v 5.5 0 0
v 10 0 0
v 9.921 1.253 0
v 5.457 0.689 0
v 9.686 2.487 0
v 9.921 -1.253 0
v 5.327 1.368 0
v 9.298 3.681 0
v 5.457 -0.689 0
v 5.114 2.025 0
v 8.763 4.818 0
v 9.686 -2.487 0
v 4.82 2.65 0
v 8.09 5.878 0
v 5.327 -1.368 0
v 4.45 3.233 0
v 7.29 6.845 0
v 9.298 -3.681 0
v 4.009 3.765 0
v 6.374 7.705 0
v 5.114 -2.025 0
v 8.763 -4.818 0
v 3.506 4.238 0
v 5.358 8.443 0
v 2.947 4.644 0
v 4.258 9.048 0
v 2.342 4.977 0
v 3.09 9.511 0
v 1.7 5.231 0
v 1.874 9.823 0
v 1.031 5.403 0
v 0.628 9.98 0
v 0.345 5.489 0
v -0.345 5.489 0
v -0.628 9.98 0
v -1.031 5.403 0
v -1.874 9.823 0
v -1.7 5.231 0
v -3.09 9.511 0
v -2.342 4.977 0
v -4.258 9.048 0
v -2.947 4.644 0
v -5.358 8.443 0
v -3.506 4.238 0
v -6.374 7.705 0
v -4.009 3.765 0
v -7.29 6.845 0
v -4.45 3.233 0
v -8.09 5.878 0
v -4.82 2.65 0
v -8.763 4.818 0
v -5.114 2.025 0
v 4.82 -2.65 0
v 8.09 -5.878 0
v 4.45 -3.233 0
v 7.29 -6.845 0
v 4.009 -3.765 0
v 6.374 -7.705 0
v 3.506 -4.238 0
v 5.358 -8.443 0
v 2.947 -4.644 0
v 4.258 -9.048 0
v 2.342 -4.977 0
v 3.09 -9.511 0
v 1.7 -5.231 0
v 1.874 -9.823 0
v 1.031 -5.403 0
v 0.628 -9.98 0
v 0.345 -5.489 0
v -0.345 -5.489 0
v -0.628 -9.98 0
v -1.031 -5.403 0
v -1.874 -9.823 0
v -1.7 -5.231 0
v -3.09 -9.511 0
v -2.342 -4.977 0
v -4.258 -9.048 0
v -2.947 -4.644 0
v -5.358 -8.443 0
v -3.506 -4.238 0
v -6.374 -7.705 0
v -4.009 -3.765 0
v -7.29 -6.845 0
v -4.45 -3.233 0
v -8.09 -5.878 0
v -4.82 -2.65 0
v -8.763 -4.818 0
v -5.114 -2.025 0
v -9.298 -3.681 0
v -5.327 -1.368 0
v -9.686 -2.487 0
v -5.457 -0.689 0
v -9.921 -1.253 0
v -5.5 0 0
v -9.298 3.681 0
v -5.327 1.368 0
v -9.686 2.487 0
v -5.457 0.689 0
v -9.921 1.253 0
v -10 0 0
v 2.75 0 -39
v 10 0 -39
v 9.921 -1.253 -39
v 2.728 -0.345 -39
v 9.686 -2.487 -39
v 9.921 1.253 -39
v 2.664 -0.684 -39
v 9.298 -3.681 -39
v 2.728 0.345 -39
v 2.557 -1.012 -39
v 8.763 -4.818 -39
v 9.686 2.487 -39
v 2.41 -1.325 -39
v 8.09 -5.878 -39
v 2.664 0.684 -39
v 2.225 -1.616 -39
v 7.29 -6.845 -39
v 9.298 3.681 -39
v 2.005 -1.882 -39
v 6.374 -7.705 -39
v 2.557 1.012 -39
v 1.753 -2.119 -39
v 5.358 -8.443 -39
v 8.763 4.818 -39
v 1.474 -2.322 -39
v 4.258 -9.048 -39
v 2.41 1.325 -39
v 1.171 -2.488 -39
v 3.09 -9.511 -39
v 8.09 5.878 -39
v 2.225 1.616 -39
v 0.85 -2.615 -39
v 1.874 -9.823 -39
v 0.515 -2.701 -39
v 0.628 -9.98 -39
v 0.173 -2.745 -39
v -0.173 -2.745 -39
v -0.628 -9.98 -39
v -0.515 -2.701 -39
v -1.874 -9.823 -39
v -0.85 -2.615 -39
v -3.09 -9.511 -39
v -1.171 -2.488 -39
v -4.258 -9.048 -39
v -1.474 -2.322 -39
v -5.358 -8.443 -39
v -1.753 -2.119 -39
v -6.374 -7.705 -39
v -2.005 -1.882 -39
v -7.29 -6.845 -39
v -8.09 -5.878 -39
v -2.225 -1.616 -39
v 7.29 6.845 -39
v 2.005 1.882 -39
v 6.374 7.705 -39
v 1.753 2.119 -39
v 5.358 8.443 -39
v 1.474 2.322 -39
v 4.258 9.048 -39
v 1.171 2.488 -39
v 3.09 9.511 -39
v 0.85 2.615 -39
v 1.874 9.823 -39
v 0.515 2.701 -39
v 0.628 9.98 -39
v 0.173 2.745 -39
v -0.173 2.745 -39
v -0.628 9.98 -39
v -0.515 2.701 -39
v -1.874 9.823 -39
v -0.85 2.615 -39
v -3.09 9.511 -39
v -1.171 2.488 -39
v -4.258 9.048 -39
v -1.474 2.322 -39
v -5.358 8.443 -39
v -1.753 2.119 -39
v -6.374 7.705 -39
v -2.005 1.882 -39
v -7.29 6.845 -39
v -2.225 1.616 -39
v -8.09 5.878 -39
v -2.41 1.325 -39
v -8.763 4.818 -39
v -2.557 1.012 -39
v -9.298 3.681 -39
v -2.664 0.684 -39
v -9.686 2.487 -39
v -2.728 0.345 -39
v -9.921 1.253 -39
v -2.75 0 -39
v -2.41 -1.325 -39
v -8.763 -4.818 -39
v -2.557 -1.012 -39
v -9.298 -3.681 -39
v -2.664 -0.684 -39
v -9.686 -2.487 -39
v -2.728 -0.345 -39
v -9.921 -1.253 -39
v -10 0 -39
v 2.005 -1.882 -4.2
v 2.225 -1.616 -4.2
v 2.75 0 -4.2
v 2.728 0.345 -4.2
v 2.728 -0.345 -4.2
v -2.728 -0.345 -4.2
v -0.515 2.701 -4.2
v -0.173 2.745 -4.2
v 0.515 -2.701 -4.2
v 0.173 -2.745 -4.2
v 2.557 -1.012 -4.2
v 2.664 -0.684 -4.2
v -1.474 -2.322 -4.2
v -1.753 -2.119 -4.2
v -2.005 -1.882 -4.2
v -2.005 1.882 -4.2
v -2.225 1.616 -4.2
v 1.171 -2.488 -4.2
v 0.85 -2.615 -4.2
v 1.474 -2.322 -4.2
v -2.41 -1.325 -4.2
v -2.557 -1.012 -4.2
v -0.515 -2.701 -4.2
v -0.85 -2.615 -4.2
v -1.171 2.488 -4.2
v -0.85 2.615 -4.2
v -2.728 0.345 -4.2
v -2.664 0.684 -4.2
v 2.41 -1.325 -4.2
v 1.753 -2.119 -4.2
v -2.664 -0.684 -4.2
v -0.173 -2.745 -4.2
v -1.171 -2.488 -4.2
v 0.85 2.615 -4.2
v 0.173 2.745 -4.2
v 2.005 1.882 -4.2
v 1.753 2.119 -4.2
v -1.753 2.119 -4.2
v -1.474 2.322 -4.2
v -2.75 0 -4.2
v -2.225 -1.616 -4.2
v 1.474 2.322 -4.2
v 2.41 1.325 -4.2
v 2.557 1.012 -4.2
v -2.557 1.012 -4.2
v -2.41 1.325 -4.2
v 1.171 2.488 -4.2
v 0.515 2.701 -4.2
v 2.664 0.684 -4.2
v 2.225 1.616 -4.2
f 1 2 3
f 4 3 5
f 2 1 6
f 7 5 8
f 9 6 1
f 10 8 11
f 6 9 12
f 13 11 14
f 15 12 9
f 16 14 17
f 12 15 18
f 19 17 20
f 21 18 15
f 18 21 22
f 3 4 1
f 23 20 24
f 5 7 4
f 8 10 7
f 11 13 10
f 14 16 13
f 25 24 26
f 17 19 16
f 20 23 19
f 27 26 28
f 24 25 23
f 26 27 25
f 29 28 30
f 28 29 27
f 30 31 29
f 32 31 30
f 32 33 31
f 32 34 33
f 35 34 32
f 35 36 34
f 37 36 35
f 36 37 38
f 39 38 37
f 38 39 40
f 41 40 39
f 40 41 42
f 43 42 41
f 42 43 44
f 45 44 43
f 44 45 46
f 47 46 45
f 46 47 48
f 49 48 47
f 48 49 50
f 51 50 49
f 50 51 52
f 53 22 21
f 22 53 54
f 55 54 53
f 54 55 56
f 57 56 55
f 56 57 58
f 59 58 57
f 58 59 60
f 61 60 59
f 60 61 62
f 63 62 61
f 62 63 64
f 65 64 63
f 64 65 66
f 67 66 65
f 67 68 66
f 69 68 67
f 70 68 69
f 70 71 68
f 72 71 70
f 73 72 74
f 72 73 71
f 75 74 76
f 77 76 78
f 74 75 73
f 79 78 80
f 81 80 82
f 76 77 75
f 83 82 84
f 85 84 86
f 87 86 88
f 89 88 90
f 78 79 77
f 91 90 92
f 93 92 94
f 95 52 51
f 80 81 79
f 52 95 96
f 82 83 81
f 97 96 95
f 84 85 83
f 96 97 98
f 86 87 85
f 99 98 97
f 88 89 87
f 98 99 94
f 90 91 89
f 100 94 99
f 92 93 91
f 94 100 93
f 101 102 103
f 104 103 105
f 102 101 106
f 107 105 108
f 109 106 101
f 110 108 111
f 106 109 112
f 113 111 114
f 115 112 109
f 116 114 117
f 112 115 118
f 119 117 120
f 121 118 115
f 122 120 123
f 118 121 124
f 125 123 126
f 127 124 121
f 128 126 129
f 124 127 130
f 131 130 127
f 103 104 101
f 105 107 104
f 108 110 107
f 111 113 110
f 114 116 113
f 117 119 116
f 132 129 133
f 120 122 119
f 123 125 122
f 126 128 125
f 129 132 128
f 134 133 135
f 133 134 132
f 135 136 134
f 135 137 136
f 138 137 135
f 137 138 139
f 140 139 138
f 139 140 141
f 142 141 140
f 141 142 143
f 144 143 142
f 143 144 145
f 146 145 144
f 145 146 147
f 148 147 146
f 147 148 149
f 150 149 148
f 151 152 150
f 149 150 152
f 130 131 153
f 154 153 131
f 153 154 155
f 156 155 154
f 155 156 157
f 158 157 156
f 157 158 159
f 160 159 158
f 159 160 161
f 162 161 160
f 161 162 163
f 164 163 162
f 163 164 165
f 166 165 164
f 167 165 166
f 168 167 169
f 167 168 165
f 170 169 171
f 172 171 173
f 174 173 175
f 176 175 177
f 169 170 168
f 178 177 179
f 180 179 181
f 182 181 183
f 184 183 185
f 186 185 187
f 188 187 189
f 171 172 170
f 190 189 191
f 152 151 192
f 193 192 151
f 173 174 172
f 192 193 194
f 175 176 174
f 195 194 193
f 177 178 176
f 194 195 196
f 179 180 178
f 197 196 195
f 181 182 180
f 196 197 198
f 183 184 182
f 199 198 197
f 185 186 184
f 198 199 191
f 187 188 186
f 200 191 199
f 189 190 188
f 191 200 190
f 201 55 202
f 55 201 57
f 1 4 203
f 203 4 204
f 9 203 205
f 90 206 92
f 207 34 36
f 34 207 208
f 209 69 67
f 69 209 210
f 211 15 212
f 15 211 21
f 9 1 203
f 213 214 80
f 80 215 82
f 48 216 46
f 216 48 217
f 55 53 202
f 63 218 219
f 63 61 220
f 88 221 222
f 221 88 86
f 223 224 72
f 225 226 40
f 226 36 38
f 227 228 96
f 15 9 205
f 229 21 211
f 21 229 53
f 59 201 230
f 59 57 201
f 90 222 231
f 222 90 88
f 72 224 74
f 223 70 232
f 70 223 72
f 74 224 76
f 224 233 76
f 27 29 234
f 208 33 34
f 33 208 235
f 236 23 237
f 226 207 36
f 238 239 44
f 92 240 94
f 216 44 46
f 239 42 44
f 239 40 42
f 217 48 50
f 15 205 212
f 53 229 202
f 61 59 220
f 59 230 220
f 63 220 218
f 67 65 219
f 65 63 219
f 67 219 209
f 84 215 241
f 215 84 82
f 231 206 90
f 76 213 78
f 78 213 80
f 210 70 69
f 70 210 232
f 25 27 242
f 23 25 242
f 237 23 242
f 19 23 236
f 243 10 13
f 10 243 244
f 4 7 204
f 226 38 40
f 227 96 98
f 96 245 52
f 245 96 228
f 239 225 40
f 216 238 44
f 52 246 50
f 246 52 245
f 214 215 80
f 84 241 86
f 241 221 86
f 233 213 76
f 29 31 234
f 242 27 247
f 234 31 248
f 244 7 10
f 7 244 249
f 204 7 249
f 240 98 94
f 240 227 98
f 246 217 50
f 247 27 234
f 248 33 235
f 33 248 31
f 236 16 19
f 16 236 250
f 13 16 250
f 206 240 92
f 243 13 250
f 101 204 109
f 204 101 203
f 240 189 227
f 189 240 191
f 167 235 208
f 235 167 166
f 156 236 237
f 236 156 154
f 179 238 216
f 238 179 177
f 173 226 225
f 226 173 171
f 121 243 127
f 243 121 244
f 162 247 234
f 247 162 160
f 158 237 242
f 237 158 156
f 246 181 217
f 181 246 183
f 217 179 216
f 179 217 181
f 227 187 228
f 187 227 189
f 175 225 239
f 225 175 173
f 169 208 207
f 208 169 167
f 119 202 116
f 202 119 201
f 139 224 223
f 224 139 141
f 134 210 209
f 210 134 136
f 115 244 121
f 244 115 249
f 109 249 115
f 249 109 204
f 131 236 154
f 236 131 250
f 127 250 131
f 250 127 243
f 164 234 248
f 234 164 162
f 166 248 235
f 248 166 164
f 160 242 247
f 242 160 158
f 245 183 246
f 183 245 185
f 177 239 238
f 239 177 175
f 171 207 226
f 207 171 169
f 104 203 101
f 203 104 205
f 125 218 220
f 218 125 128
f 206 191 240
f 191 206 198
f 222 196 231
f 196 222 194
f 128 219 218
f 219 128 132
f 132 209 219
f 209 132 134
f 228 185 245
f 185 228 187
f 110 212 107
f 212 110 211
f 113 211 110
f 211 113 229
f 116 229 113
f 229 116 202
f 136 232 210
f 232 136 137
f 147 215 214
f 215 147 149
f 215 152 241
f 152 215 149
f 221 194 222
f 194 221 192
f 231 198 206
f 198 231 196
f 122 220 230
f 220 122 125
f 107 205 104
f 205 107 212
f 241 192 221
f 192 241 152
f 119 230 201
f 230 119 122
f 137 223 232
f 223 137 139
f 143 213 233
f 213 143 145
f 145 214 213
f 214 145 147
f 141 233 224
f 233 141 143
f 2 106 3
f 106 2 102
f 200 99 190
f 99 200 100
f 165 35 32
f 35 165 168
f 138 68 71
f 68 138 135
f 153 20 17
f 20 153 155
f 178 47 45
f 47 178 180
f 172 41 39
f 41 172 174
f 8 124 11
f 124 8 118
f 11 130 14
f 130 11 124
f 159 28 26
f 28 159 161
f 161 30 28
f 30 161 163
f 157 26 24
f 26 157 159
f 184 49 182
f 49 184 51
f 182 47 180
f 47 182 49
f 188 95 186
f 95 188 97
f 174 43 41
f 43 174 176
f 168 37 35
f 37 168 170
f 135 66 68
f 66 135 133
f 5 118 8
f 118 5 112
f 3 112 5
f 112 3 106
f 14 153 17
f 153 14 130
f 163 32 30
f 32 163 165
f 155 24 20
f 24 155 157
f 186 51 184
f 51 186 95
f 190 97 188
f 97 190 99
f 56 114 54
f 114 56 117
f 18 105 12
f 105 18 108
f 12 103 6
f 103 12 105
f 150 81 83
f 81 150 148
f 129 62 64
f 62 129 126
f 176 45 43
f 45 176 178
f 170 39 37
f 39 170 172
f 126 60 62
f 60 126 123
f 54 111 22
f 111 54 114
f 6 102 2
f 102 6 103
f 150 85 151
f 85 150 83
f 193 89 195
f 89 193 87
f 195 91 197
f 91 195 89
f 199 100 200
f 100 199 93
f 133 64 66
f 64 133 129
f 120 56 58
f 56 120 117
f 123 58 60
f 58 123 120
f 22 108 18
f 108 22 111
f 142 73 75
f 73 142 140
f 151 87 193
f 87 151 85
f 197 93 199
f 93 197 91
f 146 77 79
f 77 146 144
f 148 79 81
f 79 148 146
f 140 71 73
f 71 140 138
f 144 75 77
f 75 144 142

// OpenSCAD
$fn = 50;


difference() {
	union() {
		translate(v = [0, 0, -39.0000000000]) {
			cylinder(h = 39, r = 10.0000000000);
		}
	}
	union() {
		translate(v = [0, 0, 0]) {
			rotate(a = [0, 0, 0]) {
				difference() {
					union() {
						#translate(v = [0, 0, -39.0000000000]) {
							cylinder(h = 39, r = 2.2500000000);
						}
						#translate(v = [0, 0, -4.2000000000]) {
							cylinder(h = 4.2000000000, r1 = 2.7500000000, r2 = 5.5000000000);
						}
						#translate(v = [0, 0, -39.0000000000]) {
							cylinder(h = 39, r = 2.7500000000);
						}
						#translate(v = [0, 0, -39.0000000000]) {
							cylinder(h = 39, r = 2.2500000000);
						}
					}
					union();
				}
			}
		}
	}
}
